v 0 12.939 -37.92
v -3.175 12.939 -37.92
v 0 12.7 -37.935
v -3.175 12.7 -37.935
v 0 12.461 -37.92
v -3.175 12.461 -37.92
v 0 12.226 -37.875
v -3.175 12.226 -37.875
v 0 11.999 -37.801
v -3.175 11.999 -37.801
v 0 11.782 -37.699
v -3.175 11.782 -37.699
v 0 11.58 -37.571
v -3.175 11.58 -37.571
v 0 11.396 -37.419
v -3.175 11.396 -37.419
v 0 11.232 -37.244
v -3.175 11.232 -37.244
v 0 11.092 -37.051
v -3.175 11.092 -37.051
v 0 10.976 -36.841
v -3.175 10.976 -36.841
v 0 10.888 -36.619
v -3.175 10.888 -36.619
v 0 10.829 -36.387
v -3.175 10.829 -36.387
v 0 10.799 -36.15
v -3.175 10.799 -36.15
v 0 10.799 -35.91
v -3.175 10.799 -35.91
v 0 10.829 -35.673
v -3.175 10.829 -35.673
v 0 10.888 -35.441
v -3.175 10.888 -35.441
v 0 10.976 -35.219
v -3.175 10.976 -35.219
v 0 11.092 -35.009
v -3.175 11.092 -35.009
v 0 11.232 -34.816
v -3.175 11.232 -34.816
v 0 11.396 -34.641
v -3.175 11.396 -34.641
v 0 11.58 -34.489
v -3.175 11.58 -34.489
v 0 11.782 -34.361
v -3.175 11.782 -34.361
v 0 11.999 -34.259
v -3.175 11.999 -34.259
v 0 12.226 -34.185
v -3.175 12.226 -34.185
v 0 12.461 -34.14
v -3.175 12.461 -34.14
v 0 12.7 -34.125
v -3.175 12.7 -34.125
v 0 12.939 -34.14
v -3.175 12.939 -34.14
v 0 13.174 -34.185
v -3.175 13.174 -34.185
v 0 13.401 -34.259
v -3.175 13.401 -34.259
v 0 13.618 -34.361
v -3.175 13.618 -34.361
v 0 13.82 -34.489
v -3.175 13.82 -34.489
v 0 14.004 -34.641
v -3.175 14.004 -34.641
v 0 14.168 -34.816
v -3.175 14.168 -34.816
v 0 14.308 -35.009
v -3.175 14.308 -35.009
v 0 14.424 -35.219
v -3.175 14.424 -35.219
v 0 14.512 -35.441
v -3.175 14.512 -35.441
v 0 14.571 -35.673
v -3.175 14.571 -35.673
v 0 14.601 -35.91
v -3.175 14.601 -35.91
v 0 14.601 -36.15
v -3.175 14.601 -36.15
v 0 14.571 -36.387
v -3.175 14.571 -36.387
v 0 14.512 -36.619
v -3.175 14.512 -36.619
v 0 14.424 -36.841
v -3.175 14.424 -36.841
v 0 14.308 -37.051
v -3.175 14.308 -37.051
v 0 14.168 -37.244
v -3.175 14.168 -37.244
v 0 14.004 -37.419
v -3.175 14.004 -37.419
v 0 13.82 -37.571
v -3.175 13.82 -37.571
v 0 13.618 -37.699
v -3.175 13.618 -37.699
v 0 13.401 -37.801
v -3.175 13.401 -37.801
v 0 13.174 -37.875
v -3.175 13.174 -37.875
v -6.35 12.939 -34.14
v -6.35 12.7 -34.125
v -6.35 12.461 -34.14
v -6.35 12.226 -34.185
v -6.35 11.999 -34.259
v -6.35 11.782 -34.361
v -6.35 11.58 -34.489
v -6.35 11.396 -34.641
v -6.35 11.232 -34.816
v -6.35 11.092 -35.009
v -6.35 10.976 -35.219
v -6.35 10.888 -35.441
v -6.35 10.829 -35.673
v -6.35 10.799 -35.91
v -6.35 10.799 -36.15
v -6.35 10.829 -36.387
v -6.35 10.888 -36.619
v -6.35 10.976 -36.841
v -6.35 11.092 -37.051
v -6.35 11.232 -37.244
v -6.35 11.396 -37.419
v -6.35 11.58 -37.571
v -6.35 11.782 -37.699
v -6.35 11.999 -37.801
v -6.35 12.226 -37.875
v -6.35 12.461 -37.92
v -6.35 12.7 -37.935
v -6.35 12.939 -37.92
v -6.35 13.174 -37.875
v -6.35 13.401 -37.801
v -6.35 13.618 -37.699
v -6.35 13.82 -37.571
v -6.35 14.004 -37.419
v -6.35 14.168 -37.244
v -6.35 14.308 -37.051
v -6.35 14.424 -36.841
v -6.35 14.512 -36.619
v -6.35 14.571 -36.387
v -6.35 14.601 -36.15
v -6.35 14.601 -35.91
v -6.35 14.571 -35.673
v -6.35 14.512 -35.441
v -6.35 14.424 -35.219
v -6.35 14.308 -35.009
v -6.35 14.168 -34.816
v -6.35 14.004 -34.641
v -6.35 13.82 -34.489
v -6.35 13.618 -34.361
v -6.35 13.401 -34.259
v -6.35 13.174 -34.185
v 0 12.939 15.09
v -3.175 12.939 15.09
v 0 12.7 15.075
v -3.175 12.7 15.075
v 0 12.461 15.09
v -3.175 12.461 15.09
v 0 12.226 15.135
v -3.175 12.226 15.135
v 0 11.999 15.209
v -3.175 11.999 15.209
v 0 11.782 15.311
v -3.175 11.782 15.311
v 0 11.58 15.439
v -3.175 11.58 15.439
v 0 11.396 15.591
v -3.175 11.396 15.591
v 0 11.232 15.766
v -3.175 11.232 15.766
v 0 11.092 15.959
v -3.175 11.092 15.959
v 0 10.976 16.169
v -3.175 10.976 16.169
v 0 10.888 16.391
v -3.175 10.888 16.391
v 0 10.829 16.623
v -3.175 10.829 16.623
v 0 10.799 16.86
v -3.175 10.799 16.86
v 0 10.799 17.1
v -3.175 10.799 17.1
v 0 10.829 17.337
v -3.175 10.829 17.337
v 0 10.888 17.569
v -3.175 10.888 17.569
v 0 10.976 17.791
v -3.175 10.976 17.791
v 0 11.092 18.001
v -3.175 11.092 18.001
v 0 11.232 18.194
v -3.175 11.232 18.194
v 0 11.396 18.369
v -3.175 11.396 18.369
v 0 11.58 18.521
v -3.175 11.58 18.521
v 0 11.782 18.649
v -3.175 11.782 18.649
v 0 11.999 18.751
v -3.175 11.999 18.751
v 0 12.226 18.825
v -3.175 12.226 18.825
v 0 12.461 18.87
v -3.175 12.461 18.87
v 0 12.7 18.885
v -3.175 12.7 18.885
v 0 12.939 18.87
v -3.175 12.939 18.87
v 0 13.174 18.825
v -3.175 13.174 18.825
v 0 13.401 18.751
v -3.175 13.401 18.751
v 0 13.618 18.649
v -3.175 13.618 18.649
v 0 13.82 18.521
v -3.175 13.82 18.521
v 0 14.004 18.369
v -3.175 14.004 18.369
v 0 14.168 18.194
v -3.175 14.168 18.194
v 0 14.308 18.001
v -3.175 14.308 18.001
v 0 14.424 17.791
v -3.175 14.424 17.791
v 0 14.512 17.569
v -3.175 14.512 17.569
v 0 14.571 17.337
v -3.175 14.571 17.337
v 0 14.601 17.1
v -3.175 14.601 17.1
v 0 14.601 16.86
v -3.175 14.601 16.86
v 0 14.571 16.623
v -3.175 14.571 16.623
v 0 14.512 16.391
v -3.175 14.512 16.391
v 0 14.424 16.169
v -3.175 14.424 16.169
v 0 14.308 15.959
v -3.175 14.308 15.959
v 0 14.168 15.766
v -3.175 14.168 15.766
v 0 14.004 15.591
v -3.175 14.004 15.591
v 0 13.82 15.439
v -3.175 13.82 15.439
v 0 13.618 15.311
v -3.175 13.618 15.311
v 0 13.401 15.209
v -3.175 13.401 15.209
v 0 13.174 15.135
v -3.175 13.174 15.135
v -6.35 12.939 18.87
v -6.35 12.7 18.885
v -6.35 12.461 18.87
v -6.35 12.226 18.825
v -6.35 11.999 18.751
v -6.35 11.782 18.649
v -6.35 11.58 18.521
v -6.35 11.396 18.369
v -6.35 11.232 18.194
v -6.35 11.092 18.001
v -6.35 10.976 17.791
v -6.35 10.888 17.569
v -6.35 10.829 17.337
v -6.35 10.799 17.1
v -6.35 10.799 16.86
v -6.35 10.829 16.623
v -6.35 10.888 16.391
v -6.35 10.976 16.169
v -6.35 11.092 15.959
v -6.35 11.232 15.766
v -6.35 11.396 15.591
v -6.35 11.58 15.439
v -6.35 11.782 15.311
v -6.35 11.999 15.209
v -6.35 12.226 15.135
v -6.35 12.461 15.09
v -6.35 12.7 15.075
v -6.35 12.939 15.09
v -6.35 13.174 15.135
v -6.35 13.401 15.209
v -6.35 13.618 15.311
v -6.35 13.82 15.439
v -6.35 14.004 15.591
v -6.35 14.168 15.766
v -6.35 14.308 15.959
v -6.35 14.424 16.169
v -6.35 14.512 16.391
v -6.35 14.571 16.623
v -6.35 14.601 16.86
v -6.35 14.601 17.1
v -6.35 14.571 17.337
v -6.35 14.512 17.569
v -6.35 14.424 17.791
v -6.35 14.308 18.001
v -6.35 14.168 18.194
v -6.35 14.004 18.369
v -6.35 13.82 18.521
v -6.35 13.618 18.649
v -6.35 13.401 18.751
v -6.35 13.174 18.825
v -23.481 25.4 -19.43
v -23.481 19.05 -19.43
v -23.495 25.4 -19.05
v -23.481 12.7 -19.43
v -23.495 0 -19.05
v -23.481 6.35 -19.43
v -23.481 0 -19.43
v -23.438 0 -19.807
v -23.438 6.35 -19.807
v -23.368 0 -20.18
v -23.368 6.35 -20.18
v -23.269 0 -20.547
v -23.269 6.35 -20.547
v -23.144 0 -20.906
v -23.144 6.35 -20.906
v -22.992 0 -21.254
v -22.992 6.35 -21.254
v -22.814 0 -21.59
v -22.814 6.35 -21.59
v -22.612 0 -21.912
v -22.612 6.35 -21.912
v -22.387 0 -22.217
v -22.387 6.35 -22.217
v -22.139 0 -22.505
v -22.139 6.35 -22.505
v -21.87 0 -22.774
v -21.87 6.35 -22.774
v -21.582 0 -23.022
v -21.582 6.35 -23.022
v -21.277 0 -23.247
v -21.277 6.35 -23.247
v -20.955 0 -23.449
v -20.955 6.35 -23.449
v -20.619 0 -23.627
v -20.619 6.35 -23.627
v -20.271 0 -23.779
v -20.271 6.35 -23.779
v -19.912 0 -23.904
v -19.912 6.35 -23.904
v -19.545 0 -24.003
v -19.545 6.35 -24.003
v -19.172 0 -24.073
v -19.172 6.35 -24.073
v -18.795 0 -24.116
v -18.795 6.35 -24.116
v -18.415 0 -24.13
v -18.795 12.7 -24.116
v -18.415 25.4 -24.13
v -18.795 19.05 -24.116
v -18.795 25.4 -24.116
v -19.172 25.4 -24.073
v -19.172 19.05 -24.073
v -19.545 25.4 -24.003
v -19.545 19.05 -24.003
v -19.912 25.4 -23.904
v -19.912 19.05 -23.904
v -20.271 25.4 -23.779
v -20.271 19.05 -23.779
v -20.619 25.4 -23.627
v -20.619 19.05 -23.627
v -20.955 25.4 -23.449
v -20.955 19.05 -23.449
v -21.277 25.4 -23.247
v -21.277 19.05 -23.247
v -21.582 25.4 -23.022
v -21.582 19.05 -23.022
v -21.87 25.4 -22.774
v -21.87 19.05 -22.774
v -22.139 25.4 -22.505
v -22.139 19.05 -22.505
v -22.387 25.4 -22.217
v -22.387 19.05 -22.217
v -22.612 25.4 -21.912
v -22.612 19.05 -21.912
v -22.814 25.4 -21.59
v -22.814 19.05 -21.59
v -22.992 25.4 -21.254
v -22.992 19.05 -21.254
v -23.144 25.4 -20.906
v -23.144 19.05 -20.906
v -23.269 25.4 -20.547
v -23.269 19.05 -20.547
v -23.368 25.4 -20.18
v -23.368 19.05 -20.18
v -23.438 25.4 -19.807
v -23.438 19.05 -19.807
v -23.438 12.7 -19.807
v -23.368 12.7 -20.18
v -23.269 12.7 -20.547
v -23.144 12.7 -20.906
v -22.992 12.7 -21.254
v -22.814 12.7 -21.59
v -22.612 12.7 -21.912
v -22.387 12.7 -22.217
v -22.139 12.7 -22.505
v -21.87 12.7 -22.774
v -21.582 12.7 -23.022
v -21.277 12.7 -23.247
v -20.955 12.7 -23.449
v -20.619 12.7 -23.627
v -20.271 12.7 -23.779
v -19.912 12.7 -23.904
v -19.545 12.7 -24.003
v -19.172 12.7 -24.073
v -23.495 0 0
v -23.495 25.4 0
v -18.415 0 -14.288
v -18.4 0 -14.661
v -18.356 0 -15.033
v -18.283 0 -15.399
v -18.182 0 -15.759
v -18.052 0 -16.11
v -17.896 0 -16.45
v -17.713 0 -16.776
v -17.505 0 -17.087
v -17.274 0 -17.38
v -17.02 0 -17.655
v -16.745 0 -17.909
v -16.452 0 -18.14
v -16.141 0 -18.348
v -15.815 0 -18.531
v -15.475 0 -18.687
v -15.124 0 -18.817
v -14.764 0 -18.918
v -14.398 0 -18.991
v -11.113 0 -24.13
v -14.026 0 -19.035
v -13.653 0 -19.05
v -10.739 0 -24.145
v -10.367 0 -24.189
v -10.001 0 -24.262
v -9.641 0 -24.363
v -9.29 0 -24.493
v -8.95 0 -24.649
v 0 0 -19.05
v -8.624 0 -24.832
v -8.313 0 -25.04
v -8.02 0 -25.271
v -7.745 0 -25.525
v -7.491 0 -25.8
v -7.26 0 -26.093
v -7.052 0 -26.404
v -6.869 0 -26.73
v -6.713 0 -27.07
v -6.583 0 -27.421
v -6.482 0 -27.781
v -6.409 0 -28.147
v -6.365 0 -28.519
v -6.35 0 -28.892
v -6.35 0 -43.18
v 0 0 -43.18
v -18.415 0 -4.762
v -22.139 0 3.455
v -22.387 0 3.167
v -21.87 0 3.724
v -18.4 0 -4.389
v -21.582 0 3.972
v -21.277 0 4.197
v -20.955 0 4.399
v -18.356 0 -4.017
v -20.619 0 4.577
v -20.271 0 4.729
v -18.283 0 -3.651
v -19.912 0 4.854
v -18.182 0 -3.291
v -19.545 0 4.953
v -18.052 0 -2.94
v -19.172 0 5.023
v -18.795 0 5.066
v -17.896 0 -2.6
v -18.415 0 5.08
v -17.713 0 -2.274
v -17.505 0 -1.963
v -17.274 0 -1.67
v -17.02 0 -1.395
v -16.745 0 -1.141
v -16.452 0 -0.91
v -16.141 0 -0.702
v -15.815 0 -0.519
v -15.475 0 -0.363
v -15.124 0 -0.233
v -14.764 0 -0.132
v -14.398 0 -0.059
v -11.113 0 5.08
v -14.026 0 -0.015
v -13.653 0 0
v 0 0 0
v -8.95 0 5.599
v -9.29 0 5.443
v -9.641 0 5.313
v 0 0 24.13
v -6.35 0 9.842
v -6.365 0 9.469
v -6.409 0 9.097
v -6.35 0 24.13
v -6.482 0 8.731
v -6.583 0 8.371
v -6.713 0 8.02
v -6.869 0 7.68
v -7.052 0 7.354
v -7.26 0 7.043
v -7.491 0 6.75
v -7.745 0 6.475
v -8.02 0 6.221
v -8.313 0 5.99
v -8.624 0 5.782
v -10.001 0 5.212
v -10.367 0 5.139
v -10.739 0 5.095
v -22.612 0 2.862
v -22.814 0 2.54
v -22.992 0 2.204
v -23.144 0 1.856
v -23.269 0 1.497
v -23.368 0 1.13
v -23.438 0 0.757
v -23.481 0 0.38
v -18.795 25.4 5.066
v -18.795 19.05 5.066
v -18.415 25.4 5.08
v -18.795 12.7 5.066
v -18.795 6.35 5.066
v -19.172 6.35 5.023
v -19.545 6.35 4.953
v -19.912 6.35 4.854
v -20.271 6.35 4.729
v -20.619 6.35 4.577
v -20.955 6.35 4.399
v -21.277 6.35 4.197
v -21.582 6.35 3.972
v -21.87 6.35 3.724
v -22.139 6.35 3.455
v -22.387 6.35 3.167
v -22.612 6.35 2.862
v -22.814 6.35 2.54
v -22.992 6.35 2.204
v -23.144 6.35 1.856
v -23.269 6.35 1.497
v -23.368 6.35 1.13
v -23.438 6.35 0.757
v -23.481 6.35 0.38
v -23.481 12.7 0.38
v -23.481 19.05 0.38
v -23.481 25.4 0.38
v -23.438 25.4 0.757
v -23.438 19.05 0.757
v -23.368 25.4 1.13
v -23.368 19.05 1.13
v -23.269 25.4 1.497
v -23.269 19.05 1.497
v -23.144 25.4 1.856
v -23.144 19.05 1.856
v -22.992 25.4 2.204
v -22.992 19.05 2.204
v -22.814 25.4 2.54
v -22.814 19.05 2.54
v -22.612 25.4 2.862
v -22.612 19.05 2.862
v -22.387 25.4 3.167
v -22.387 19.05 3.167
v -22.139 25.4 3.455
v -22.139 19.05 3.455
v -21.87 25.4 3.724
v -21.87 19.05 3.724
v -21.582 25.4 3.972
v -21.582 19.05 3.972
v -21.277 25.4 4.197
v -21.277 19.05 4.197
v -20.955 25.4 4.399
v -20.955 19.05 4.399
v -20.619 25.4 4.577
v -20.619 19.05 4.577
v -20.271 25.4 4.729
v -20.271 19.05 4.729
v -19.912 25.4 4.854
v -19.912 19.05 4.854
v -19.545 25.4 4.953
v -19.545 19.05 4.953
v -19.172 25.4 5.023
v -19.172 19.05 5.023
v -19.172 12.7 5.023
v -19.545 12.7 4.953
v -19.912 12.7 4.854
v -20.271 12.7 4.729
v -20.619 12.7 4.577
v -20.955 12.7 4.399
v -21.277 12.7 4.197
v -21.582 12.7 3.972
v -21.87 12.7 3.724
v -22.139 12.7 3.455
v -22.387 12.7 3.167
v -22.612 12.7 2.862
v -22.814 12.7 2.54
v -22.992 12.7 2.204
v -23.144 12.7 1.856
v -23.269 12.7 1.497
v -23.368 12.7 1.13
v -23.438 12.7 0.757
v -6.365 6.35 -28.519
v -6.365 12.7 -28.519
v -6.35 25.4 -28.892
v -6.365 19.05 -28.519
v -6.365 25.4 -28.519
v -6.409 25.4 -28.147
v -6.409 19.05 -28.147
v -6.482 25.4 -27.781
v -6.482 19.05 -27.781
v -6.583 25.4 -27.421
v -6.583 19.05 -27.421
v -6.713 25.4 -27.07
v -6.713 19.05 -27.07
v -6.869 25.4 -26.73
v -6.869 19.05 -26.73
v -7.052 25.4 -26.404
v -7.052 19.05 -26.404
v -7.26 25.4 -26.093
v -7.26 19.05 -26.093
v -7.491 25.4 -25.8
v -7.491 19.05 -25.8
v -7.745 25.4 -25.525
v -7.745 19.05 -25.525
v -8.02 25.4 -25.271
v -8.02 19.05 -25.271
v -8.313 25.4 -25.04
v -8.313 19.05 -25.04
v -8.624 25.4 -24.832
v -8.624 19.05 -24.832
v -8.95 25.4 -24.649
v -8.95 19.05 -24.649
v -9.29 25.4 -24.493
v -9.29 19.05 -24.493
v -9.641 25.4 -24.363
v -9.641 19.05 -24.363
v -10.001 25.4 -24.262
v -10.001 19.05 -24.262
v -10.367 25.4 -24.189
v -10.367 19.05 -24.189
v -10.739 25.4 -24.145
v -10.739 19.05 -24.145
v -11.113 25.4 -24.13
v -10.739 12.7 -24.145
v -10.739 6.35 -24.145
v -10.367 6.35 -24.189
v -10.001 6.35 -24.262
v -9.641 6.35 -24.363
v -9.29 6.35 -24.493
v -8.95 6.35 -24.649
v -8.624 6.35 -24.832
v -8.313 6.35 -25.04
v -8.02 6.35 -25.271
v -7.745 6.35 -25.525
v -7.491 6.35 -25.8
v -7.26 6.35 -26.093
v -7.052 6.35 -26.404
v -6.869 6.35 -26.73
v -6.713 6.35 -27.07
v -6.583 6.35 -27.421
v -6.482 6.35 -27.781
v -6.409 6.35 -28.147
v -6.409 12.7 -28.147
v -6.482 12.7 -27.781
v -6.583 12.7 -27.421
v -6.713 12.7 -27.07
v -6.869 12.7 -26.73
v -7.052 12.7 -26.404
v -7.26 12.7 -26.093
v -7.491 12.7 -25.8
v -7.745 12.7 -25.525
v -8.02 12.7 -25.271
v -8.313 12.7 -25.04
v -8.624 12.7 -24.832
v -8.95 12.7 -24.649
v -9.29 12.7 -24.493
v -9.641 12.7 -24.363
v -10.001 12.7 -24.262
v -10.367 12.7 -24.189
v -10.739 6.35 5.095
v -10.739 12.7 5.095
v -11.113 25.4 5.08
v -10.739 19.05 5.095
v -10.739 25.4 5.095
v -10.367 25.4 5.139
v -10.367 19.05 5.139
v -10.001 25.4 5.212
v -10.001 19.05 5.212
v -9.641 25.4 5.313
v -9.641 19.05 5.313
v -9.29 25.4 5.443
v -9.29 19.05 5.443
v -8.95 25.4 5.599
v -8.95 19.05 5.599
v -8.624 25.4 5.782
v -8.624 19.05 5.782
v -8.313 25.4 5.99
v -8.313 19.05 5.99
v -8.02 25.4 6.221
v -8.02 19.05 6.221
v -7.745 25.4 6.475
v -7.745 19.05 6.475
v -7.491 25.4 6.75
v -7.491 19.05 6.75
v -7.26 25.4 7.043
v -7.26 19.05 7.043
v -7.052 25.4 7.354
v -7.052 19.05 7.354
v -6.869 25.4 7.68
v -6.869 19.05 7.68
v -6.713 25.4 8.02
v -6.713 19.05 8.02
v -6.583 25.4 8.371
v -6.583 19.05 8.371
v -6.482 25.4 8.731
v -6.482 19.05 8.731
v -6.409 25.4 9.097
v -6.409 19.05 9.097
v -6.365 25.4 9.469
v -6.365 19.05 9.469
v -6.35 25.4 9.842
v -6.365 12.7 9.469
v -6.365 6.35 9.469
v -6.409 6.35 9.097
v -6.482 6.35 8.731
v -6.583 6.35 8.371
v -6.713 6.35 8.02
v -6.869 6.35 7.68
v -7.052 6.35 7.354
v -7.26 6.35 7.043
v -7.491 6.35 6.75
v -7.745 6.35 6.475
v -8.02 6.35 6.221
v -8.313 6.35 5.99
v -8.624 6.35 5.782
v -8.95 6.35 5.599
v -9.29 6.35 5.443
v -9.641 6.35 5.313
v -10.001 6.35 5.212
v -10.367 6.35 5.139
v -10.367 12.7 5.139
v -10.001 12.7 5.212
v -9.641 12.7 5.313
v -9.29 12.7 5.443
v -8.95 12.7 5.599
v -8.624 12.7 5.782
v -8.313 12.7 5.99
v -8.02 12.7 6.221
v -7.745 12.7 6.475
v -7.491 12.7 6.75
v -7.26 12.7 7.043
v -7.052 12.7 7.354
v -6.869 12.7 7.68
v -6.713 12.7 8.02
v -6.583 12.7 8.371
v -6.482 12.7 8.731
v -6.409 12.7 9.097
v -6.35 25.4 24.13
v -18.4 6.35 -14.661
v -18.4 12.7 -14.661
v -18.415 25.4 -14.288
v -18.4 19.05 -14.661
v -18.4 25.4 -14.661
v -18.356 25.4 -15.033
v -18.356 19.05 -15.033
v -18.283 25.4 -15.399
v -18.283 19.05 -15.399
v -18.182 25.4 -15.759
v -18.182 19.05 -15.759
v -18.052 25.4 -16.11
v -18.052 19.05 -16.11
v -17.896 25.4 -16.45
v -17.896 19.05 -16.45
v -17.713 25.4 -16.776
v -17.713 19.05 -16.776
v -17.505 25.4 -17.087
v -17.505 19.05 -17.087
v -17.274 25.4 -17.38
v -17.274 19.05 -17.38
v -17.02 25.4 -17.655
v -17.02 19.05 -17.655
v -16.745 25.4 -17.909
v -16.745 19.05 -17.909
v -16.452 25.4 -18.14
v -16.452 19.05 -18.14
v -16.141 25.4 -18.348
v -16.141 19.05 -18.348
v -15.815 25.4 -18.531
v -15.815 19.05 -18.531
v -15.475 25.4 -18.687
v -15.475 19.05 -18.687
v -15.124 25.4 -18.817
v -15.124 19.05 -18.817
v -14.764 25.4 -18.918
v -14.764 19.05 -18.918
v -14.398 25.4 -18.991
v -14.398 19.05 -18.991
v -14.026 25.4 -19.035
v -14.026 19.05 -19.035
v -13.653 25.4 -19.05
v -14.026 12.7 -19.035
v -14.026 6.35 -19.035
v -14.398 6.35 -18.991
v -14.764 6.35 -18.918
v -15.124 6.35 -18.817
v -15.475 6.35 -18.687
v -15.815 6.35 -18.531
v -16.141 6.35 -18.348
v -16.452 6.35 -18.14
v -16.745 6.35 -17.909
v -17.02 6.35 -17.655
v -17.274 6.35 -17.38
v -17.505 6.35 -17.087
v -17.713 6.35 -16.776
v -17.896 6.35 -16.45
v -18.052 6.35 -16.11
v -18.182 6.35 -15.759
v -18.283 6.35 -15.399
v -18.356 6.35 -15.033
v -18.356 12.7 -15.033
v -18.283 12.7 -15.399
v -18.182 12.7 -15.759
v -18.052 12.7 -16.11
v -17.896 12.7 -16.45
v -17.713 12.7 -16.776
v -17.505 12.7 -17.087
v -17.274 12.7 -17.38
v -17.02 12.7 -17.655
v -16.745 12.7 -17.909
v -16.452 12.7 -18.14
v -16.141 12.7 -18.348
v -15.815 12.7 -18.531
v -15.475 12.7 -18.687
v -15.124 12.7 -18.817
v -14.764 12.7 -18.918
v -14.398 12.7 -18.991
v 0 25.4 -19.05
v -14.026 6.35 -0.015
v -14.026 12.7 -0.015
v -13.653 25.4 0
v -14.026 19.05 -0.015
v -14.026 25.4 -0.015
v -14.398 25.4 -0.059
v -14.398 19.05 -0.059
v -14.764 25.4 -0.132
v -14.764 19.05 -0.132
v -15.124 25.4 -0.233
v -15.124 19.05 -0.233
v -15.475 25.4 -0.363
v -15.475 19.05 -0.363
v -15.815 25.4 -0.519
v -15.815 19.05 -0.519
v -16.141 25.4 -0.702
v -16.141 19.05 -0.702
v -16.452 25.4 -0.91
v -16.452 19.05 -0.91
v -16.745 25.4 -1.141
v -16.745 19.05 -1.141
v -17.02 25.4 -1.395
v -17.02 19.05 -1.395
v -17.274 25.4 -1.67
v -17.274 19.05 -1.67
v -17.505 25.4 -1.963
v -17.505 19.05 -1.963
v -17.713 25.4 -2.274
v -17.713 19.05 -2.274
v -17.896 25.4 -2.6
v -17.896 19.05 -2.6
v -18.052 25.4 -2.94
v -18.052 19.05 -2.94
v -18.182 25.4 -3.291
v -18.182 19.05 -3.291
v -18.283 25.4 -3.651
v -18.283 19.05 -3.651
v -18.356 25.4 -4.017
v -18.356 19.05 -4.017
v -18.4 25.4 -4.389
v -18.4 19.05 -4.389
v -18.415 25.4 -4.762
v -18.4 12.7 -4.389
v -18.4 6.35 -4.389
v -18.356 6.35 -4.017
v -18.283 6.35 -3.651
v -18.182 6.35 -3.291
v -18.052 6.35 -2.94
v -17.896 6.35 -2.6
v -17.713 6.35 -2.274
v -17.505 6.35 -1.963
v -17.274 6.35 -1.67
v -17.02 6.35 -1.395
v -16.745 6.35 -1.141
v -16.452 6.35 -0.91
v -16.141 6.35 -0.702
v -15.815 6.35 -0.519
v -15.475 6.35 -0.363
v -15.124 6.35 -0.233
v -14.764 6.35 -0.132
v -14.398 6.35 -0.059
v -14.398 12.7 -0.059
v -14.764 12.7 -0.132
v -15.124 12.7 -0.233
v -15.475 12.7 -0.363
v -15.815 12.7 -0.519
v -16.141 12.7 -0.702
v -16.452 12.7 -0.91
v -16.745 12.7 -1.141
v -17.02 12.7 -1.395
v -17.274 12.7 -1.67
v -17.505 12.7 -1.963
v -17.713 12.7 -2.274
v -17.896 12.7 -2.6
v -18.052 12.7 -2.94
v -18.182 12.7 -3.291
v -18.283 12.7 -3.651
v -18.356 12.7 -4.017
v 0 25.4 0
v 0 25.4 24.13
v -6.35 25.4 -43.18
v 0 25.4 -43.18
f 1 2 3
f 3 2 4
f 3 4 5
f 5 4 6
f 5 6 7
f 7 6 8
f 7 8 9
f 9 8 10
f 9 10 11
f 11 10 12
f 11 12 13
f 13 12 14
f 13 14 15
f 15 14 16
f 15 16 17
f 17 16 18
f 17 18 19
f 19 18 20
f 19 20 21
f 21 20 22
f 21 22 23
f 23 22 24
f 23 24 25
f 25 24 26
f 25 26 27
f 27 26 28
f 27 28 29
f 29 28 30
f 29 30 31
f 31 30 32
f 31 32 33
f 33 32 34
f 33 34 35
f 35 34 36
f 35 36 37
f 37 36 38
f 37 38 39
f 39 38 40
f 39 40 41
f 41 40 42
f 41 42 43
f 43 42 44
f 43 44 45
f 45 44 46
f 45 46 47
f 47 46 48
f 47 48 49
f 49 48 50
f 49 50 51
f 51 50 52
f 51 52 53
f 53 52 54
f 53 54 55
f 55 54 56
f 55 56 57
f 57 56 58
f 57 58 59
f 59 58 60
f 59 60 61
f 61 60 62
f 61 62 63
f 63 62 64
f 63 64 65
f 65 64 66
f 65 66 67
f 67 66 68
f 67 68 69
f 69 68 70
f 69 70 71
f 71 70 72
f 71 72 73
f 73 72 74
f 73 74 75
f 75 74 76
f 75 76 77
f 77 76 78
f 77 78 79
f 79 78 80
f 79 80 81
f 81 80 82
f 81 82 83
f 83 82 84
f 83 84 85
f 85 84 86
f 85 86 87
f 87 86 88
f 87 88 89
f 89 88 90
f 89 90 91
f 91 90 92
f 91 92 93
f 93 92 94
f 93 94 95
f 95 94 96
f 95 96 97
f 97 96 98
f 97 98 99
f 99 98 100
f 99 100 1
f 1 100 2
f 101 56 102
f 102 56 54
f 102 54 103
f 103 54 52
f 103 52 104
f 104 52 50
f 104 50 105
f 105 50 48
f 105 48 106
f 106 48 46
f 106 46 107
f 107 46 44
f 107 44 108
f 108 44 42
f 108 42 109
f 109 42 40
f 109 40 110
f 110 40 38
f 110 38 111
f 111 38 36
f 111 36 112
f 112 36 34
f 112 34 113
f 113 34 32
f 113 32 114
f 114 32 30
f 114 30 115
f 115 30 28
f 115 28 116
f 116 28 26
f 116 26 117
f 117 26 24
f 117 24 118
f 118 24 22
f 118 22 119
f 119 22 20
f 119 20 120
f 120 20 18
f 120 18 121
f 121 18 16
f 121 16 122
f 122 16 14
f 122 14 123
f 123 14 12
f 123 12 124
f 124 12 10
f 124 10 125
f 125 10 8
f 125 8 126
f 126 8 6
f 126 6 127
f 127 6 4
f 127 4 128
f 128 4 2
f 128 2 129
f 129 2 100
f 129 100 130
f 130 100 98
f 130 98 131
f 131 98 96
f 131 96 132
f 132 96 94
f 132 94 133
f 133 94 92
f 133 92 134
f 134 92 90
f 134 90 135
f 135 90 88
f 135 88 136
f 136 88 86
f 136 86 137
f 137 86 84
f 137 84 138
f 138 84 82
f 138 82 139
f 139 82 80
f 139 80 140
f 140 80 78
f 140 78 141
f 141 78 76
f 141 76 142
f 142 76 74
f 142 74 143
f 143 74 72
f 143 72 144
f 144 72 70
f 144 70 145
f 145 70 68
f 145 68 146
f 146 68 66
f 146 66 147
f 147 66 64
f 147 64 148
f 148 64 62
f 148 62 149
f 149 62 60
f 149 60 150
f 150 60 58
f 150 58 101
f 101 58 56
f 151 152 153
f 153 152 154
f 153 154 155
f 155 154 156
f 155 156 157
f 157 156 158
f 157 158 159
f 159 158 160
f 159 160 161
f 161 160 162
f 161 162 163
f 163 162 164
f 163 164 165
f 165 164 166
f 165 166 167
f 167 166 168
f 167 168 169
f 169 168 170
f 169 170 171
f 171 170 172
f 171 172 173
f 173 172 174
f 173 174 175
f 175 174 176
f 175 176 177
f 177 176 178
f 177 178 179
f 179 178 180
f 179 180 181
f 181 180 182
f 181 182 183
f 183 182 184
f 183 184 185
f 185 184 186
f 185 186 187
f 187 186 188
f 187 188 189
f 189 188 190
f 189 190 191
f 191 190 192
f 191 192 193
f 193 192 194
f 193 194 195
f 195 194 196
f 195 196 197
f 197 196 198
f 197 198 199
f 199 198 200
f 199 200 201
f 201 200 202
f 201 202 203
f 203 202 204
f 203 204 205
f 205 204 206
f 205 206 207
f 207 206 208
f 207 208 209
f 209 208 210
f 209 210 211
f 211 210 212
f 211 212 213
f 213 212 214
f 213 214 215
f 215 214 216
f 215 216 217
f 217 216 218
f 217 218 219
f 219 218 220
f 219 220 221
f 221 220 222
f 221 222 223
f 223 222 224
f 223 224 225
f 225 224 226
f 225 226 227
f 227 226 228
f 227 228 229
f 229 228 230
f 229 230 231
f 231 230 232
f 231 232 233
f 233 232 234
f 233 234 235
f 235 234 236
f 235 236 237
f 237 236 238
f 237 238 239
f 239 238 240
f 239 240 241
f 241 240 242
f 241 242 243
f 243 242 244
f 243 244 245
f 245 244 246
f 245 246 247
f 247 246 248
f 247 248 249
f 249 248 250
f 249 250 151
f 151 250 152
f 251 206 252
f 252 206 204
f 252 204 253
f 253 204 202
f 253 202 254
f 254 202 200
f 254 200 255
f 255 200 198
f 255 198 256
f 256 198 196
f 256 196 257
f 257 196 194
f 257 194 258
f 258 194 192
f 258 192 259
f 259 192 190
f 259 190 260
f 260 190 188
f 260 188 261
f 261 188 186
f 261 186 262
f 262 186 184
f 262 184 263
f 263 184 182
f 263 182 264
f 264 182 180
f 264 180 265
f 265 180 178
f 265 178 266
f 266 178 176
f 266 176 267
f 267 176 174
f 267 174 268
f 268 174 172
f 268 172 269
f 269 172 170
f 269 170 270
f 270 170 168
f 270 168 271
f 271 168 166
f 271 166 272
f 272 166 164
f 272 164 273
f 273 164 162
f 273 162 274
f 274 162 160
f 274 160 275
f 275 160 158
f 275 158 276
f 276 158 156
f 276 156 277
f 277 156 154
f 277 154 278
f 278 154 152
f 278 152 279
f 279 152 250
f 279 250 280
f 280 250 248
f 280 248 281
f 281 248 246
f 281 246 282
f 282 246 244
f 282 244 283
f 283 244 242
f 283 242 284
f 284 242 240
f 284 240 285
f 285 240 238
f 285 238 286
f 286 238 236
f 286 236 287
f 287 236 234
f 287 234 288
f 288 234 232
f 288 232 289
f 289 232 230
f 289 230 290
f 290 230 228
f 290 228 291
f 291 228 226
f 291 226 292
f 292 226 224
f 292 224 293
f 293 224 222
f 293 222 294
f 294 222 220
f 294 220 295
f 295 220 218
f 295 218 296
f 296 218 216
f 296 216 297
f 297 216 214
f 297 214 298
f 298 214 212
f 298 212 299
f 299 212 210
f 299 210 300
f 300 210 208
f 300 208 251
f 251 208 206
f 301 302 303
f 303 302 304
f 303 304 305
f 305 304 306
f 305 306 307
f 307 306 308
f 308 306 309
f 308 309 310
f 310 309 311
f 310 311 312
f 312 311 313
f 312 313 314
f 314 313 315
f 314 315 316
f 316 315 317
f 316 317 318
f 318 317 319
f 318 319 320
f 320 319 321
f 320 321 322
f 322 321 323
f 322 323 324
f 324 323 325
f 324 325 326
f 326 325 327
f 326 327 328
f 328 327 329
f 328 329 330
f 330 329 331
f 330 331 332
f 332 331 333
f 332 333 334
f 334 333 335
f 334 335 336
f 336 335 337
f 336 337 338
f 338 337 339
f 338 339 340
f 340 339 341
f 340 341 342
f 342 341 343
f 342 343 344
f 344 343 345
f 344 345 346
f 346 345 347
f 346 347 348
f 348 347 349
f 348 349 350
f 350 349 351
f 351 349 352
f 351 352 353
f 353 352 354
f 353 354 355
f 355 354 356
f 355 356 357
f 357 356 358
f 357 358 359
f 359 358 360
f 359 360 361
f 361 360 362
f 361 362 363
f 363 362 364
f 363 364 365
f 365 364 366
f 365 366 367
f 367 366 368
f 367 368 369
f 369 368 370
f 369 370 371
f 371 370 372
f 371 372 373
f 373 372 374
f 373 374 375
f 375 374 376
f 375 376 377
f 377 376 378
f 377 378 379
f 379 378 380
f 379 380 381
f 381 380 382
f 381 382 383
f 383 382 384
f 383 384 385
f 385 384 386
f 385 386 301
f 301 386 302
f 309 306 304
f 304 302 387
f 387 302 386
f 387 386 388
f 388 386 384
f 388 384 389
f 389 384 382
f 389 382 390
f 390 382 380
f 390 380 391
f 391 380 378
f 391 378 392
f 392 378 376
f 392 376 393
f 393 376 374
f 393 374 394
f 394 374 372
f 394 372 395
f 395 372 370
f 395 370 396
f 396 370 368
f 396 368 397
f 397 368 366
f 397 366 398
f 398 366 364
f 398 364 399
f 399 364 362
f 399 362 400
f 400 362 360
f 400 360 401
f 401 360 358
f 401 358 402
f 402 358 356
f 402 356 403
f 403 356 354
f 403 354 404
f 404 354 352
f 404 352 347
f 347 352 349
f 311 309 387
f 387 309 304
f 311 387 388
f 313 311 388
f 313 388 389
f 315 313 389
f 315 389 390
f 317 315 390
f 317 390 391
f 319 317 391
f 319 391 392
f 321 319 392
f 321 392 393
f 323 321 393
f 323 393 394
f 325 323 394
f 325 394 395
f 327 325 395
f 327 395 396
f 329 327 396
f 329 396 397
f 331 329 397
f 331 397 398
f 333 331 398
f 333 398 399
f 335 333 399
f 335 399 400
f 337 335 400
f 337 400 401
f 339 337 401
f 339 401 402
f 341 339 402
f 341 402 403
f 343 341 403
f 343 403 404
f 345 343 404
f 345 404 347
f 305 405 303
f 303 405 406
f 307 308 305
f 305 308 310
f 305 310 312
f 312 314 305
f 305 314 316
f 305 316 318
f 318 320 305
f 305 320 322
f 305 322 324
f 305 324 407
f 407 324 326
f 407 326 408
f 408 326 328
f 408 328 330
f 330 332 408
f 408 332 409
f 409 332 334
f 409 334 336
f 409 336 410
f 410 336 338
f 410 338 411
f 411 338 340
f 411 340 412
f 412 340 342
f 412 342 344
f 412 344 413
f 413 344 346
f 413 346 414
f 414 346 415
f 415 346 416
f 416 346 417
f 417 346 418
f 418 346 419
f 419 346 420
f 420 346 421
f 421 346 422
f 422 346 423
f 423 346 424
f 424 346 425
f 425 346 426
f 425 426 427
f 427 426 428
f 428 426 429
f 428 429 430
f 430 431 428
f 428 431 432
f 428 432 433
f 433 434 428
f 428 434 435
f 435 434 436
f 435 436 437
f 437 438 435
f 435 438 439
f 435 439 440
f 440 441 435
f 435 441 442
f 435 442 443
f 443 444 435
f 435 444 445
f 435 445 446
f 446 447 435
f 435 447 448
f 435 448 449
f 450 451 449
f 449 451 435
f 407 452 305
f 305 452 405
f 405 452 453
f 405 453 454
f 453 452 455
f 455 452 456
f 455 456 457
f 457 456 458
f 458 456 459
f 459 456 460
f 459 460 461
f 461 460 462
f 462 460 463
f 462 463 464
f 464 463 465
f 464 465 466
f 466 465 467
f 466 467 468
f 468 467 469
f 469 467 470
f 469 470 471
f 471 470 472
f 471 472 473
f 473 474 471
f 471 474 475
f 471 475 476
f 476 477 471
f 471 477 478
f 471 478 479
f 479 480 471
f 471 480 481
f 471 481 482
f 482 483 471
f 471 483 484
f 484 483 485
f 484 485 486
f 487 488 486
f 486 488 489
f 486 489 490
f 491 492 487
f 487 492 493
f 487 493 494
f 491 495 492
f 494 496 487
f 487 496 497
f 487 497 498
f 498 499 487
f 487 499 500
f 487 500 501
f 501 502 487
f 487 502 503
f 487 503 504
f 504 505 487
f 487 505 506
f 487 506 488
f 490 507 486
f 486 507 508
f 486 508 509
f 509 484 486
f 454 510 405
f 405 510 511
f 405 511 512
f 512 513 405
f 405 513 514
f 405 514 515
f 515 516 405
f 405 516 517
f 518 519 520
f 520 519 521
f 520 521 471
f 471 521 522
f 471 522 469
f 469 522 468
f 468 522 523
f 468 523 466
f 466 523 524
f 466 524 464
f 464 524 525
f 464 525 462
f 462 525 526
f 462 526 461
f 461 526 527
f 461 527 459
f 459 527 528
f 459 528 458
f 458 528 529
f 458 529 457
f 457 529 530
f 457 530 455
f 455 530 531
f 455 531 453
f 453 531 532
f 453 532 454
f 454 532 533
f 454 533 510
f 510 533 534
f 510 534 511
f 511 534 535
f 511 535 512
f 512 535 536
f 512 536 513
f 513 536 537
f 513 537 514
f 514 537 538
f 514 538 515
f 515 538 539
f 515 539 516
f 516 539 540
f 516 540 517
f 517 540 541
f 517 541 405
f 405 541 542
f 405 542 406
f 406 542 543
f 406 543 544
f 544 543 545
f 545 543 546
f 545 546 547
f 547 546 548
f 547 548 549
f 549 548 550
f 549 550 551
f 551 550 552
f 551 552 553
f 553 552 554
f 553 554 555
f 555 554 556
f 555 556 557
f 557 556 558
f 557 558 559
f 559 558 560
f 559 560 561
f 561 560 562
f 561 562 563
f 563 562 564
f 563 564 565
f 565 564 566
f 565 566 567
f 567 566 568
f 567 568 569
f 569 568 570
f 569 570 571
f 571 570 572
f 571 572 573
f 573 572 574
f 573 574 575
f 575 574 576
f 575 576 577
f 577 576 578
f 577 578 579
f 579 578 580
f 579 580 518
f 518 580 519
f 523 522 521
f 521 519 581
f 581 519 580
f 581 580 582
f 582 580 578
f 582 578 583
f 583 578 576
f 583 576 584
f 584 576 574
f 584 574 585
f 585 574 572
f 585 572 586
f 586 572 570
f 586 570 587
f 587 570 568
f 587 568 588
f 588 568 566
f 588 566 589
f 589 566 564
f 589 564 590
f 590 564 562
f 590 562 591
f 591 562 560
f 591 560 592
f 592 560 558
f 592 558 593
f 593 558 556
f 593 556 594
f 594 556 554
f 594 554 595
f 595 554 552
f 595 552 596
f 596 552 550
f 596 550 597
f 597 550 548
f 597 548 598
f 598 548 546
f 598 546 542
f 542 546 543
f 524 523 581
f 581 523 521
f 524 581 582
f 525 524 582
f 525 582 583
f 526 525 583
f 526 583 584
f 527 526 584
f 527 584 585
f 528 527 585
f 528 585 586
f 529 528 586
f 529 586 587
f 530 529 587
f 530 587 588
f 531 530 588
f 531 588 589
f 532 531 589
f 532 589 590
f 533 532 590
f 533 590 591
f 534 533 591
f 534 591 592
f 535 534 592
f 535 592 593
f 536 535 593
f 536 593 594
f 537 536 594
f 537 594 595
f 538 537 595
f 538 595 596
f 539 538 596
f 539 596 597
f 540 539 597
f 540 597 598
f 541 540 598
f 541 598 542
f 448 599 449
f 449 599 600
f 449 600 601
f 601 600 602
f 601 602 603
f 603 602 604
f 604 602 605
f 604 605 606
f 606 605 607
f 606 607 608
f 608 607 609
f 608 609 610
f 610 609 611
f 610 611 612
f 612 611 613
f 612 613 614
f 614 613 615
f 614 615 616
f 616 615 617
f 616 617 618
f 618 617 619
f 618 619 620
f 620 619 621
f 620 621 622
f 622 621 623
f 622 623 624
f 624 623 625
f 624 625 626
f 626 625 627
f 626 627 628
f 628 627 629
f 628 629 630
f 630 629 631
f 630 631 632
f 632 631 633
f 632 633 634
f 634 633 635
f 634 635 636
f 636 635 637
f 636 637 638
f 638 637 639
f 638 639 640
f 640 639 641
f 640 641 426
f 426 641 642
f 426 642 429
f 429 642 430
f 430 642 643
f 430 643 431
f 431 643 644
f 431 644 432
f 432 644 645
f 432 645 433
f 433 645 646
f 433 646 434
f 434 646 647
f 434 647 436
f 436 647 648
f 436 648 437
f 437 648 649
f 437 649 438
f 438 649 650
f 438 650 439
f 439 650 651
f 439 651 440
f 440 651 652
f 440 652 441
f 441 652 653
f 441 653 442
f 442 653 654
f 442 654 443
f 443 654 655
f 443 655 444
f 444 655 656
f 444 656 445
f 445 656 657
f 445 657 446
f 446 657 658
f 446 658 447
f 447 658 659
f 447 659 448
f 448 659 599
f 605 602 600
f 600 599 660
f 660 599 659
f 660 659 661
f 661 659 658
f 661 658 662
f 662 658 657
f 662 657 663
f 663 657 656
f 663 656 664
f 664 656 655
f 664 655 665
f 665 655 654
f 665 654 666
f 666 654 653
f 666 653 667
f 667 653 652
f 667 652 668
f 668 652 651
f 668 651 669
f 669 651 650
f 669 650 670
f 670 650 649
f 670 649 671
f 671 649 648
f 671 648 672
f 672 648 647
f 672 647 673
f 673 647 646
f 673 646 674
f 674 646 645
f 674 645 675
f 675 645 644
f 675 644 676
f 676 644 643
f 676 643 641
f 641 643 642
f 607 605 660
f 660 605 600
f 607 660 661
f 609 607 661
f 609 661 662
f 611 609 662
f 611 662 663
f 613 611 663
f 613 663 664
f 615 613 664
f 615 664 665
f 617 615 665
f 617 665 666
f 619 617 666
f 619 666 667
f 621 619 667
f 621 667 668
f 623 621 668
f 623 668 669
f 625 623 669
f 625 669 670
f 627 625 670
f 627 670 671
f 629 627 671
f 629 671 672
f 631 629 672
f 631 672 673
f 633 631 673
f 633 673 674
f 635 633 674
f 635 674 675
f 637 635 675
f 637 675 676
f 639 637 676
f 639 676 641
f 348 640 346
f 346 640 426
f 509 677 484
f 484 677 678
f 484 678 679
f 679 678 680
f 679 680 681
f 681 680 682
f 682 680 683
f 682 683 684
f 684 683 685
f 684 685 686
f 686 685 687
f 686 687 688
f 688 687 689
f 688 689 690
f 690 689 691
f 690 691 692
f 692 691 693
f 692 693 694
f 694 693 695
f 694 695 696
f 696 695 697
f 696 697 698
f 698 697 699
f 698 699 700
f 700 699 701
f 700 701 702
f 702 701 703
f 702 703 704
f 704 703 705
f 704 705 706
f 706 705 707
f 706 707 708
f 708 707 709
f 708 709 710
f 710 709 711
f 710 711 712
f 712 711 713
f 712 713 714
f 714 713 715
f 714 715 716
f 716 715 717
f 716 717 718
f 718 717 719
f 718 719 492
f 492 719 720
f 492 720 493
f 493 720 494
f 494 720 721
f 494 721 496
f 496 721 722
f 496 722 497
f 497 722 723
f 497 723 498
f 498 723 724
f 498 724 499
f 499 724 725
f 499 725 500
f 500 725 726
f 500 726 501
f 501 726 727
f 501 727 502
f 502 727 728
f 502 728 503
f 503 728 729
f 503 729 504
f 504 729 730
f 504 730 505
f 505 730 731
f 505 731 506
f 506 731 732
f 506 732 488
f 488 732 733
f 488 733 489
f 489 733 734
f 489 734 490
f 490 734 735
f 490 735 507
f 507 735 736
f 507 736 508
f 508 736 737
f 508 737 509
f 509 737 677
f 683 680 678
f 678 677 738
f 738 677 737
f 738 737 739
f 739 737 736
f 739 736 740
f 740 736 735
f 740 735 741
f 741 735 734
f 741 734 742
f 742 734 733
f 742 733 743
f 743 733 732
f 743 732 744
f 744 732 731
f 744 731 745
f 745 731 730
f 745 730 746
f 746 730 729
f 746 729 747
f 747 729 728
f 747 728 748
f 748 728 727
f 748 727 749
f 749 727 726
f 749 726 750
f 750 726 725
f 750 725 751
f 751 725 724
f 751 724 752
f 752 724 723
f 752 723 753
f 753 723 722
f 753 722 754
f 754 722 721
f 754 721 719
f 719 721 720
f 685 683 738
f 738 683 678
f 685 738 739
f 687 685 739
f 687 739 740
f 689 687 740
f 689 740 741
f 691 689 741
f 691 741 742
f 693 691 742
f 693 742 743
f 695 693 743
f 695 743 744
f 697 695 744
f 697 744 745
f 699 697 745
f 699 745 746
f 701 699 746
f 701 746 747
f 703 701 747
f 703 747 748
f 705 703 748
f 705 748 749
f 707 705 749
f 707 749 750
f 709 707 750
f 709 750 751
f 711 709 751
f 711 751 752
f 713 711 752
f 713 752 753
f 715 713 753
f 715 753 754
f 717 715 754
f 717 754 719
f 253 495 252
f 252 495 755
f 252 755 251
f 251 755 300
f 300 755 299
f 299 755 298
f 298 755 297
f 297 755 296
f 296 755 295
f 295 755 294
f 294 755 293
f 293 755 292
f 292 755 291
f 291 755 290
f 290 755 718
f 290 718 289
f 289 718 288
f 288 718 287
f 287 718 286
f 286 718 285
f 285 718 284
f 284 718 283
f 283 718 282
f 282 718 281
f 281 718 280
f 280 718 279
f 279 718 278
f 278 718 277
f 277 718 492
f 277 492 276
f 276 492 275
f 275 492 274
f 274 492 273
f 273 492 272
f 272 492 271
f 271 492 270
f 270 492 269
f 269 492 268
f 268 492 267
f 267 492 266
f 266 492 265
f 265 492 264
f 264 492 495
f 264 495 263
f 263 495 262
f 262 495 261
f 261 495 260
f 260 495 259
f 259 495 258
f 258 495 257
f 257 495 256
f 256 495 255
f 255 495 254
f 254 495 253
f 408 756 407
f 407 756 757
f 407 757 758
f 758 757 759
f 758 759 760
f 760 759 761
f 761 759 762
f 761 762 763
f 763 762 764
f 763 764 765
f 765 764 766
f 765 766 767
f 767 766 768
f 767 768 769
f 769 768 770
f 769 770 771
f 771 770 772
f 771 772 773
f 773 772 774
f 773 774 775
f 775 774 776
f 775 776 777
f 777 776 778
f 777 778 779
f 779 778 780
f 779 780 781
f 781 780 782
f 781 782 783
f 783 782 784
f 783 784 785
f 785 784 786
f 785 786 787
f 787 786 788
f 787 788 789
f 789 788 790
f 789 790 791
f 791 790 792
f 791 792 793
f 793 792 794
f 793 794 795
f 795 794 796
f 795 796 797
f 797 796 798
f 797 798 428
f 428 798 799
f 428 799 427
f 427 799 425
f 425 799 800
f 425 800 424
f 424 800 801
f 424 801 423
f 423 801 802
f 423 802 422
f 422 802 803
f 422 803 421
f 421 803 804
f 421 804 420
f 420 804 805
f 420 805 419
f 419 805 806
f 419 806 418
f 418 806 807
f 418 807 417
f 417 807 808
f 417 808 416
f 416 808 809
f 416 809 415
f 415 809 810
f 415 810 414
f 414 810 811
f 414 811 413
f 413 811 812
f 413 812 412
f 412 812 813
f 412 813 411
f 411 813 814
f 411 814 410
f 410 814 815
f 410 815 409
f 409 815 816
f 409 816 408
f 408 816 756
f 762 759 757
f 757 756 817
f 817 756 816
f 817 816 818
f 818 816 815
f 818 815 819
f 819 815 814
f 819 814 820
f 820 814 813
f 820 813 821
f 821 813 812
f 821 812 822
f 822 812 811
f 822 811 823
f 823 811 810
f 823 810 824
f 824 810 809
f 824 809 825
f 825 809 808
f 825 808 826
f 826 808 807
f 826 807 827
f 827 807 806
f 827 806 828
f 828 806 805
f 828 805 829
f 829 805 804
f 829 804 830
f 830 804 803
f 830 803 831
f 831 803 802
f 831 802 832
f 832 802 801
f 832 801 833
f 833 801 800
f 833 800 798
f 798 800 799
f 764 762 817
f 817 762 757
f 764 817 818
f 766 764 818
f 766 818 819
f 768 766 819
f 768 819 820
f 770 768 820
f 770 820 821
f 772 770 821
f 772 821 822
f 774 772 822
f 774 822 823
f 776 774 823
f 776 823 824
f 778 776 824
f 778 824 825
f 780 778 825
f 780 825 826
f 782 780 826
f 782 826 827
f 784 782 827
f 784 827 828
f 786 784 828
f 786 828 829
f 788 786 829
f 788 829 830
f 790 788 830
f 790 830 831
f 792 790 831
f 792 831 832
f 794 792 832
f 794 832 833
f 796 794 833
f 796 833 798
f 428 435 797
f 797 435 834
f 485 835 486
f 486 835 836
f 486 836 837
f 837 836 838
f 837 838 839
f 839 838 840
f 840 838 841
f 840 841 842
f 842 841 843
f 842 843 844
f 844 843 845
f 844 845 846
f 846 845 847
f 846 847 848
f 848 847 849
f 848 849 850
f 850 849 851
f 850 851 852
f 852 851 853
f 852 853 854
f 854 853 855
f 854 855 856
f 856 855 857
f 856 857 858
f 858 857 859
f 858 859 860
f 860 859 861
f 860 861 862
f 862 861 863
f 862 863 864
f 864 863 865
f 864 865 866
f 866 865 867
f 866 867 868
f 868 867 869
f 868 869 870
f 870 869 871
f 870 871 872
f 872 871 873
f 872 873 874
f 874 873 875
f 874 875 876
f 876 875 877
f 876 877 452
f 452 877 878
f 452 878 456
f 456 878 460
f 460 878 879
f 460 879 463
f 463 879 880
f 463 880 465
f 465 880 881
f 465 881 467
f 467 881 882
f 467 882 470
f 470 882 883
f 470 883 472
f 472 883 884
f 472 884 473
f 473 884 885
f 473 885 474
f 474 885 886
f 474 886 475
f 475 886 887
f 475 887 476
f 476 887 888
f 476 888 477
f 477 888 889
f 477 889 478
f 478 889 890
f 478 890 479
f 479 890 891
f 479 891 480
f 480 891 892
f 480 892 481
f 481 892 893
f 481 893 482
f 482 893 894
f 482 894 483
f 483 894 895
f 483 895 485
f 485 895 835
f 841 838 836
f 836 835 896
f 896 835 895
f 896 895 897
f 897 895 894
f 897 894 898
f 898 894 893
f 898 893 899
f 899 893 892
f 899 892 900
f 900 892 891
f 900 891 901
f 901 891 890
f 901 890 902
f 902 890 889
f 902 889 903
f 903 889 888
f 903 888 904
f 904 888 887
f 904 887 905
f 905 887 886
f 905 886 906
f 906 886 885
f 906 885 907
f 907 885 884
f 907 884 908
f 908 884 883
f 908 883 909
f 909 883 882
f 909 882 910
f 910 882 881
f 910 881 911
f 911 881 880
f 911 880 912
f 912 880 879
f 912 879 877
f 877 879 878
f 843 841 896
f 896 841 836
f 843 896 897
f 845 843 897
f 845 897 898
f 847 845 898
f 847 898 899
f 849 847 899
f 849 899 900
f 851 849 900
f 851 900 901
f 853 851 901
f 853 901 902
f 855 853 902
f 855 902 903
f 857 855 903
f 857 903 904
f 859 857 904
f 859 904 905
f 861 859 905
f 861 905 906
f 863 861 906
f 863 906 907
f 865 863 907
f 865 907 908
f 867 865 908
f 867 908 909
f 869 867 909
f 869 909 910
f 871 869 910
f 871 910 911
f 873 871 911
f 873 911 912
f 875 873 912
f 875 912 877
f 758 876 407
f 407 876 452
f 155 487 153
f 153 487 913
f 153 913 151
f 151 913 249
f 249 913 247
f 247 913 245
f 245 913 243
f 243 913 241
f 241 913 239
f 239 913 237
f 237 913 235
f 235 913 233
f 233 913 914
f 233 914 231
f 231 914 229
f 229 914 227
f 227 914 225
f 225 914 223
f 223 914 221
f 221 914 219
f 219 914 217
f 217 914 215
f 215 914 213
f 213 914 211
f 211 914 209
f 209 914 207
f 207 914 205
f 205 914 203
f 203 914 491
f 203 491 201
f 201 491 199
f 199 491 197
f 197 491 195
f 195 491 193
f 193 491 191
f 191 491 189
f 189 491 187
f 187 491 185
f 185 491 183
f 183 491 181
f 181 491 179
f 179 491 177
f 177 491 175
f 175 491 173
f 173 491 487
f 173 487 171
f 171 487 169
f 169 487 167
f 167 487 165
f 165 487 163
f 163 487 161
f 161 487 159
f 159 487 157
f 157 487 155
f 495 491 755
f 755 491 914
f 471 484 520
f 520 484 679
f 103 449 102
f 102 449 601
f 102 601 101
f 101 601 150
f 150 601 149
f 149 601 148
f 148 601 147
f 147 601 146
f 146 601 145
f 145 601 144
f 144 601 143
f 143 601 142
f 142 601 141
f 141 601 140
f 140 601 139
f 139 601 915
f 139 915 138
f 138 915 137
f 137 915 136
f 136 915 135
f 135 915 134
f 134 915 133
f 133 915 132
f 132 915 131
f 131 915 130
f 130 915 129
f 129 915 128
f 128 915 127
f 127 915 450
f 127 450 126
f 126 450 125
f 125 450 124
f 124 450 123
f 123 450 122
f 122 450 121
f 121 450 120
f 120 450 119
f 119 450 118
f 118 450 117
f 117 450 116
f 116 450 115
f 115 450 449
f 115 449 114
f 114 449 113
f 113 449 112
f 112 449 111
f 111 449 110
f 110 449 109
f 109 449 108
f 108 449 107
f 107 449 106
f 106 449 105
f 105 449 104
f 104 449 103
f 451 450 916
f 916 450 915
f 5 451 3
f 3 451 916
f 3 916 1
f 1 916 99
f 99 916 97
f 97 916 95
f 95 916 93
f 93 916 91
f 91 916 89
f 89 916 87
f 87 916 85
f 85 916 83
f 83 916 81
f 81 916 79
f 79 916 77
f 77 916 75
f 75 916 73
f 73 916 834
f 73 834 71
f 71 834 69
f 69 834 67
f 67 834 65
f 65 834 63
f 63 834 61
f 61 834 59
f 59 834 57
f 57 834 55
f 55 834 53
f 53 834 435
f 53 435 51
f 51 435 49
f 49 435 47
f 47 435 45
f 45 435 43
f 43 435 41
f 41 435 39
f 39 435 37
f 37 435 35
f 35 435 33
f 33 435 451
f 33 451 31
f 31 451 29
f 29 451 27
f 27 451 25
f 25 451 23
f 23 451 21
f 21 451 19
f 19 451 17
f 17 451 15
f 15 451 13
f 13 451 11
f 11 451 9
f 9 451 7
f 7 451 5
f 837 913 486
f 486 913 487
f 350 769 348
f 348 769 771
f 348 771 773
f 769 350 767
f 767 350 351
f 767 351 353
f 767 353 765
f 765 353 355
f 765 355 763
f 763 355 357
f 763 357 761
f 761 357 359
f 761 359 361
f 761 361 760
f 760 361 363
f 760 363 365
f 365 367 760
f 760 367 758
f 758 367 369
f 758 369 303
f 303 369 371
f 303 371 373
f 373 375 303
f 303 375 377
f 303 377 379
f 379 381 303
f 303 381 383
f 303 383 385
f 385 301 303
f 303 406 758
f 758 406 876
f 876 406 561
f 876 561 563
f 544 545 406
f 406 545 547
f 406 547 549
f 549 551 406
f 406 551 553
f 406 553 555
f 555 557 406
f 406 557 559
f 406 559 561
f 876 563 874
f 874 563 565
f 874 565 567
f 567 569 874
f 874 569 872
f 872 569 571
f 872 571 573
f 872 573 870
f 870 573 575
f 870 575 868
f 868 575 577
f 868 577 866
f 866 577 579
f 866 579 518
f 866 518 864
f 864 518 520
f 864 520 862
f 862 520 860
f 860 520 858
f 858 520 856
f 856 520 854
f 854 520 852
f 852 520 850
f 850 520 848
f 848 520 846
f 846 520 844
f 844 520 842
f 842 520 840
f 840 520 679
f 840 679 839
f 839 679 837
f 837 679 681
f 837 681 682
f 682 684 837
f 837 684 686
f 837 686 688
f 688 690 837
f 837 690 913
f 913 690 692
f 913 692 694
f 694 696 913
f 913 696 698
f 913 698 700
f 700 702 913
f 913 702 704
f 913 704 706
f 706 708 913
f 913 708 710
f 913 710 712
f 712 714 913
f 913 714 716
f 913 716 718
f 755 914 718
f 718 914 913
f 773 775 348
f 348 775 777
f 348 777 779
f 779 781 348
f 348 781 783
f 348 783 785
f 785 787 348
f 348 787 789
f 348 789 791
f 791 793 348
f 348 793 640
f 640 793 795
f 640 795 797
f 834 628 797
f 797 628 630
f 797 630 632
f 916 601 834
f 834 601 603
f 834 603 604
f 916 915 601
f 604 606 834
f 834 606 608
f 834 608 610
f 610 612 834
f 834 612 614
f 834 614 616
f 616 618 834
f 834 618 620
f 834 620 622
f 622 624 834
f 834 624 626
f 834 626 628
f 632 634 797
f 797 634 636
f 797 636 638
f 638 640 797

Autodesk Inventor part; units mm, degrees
ref_plane "YZ Plane" through (0, 0, 0) normal (1, 0, 0) x (0, 1, 0)
ref_plane "XZ Plane" through (0, 0, 0) normal (0, 1, 0) x (-1, 0, 0)
ref_plane "XY Plane" through (0, 0, 0) normal (0, 0, 1) x (1, 0, 0)
sketch "Sketch1" plane through (0, 0, 0) normal (0, 1, 0) x (-1, 0, 0)
  line L0 (0, 0) -> (18.415, 0)
  line L1 (18.415, 0) -> (18.415, -19.05)
  line L2 (18.415, -19.05) -> (0, -19.05)
  line L3 (0, 0) -> (0, 5.08)
  line L4 (6.35, 5.08) -> (23.495, 5.08)
  line L5 (23.495, 5.08) -> (23.495, -24.13)
  line L6 (23.495, -24.13) -> (6.35, -24.13)
  line L7 (0, -23.495) -> (0, -19.05)
  line L8 (0, 5.08) -> (0, 24.13)
  line L9 (0, 24.13) -> (6.35, 24.13)
  line L10 (6.35, 24.13) -> (6.35, 5.08)
  line L11 (0, -23.495) -> (0, -43.18)
  line L12 (0, -43.18) -> (6.35, -43.18)
  line L13 (6.35, -43.18) -> (6.35, -24.13)
  dimension "d2" = 18.415
  dimension "d3" = 19.05
  dimension "d4" = 18.415
  dimension "d5" = 5.08
  dimension "d6" = 5.08
  dimension "d7" = 5.08
  dimension "d8" = 6.35
  dimension "d9" = 6.35
  dimension "d10" = 24.13
  dimension "d11" = 24.13
extrude "Extrusion1" add sketch "Sketch1" along normal blind 25.4
fillet "Fillet1" radius 4.7625 1 edges at (-18.415, 12.7, 0)
fillet "Fillet2" radius 4.7625 1 edges at (-18.415, 12.7, -19.05)
fillet "Fillet3" radius 4.7625 1 edges at (-6.35, 12.7, 5.08)
fillet "Fillet4" radius 4.7625 1 edges at (-6.35, 12.7, -24.13)
fillet "Fillet5" radius 5.08 2 edges at (-23.495, 12.7, 5.08) (-23.495, 12.7, -24.13)
sketch "Sketch3" plane through (-6.35, 0, 24.13) normal (-1, 0, 0) x (0, 0, 1)
  circle A0 centre (-7.1501, 12.7) radius 1.905
  line L0 (-14.2875, 0) -> (0, 0) projected
  line L1 (0, 0) -> (0, 25.4) projected
  point P0 (-24.13, 0)
  dimension "d31" = 3.81
  dimension "d32" = 12.7
  dimension "d33" = 7.1501
extrude "Extrusion2" cut sketch "Sketch3" against normal up to surface (6.35 mm away)
sketch "Sketch4" plane through (-6.35, 0, -43.18) normal (-1, 0, 0) x (0, 0, 1)
  circle A0 centre (7.1501, 12.7) radius 1.905
  line L0 (0, 0) -> (14.2875, 0) projected
  line L1 (0, 0) -> (0, 25.4) projected
  point P0 (43.18, 0)
  dimension "d36" = 3.81
  dimension "d37" = 12.7
  dimension "d38" = 7.1501
extrude "Extrusion3" cut sketch "Sketch4" against normal up to surface (6.35 mm away)
properties part number "TubeHolderV1"
